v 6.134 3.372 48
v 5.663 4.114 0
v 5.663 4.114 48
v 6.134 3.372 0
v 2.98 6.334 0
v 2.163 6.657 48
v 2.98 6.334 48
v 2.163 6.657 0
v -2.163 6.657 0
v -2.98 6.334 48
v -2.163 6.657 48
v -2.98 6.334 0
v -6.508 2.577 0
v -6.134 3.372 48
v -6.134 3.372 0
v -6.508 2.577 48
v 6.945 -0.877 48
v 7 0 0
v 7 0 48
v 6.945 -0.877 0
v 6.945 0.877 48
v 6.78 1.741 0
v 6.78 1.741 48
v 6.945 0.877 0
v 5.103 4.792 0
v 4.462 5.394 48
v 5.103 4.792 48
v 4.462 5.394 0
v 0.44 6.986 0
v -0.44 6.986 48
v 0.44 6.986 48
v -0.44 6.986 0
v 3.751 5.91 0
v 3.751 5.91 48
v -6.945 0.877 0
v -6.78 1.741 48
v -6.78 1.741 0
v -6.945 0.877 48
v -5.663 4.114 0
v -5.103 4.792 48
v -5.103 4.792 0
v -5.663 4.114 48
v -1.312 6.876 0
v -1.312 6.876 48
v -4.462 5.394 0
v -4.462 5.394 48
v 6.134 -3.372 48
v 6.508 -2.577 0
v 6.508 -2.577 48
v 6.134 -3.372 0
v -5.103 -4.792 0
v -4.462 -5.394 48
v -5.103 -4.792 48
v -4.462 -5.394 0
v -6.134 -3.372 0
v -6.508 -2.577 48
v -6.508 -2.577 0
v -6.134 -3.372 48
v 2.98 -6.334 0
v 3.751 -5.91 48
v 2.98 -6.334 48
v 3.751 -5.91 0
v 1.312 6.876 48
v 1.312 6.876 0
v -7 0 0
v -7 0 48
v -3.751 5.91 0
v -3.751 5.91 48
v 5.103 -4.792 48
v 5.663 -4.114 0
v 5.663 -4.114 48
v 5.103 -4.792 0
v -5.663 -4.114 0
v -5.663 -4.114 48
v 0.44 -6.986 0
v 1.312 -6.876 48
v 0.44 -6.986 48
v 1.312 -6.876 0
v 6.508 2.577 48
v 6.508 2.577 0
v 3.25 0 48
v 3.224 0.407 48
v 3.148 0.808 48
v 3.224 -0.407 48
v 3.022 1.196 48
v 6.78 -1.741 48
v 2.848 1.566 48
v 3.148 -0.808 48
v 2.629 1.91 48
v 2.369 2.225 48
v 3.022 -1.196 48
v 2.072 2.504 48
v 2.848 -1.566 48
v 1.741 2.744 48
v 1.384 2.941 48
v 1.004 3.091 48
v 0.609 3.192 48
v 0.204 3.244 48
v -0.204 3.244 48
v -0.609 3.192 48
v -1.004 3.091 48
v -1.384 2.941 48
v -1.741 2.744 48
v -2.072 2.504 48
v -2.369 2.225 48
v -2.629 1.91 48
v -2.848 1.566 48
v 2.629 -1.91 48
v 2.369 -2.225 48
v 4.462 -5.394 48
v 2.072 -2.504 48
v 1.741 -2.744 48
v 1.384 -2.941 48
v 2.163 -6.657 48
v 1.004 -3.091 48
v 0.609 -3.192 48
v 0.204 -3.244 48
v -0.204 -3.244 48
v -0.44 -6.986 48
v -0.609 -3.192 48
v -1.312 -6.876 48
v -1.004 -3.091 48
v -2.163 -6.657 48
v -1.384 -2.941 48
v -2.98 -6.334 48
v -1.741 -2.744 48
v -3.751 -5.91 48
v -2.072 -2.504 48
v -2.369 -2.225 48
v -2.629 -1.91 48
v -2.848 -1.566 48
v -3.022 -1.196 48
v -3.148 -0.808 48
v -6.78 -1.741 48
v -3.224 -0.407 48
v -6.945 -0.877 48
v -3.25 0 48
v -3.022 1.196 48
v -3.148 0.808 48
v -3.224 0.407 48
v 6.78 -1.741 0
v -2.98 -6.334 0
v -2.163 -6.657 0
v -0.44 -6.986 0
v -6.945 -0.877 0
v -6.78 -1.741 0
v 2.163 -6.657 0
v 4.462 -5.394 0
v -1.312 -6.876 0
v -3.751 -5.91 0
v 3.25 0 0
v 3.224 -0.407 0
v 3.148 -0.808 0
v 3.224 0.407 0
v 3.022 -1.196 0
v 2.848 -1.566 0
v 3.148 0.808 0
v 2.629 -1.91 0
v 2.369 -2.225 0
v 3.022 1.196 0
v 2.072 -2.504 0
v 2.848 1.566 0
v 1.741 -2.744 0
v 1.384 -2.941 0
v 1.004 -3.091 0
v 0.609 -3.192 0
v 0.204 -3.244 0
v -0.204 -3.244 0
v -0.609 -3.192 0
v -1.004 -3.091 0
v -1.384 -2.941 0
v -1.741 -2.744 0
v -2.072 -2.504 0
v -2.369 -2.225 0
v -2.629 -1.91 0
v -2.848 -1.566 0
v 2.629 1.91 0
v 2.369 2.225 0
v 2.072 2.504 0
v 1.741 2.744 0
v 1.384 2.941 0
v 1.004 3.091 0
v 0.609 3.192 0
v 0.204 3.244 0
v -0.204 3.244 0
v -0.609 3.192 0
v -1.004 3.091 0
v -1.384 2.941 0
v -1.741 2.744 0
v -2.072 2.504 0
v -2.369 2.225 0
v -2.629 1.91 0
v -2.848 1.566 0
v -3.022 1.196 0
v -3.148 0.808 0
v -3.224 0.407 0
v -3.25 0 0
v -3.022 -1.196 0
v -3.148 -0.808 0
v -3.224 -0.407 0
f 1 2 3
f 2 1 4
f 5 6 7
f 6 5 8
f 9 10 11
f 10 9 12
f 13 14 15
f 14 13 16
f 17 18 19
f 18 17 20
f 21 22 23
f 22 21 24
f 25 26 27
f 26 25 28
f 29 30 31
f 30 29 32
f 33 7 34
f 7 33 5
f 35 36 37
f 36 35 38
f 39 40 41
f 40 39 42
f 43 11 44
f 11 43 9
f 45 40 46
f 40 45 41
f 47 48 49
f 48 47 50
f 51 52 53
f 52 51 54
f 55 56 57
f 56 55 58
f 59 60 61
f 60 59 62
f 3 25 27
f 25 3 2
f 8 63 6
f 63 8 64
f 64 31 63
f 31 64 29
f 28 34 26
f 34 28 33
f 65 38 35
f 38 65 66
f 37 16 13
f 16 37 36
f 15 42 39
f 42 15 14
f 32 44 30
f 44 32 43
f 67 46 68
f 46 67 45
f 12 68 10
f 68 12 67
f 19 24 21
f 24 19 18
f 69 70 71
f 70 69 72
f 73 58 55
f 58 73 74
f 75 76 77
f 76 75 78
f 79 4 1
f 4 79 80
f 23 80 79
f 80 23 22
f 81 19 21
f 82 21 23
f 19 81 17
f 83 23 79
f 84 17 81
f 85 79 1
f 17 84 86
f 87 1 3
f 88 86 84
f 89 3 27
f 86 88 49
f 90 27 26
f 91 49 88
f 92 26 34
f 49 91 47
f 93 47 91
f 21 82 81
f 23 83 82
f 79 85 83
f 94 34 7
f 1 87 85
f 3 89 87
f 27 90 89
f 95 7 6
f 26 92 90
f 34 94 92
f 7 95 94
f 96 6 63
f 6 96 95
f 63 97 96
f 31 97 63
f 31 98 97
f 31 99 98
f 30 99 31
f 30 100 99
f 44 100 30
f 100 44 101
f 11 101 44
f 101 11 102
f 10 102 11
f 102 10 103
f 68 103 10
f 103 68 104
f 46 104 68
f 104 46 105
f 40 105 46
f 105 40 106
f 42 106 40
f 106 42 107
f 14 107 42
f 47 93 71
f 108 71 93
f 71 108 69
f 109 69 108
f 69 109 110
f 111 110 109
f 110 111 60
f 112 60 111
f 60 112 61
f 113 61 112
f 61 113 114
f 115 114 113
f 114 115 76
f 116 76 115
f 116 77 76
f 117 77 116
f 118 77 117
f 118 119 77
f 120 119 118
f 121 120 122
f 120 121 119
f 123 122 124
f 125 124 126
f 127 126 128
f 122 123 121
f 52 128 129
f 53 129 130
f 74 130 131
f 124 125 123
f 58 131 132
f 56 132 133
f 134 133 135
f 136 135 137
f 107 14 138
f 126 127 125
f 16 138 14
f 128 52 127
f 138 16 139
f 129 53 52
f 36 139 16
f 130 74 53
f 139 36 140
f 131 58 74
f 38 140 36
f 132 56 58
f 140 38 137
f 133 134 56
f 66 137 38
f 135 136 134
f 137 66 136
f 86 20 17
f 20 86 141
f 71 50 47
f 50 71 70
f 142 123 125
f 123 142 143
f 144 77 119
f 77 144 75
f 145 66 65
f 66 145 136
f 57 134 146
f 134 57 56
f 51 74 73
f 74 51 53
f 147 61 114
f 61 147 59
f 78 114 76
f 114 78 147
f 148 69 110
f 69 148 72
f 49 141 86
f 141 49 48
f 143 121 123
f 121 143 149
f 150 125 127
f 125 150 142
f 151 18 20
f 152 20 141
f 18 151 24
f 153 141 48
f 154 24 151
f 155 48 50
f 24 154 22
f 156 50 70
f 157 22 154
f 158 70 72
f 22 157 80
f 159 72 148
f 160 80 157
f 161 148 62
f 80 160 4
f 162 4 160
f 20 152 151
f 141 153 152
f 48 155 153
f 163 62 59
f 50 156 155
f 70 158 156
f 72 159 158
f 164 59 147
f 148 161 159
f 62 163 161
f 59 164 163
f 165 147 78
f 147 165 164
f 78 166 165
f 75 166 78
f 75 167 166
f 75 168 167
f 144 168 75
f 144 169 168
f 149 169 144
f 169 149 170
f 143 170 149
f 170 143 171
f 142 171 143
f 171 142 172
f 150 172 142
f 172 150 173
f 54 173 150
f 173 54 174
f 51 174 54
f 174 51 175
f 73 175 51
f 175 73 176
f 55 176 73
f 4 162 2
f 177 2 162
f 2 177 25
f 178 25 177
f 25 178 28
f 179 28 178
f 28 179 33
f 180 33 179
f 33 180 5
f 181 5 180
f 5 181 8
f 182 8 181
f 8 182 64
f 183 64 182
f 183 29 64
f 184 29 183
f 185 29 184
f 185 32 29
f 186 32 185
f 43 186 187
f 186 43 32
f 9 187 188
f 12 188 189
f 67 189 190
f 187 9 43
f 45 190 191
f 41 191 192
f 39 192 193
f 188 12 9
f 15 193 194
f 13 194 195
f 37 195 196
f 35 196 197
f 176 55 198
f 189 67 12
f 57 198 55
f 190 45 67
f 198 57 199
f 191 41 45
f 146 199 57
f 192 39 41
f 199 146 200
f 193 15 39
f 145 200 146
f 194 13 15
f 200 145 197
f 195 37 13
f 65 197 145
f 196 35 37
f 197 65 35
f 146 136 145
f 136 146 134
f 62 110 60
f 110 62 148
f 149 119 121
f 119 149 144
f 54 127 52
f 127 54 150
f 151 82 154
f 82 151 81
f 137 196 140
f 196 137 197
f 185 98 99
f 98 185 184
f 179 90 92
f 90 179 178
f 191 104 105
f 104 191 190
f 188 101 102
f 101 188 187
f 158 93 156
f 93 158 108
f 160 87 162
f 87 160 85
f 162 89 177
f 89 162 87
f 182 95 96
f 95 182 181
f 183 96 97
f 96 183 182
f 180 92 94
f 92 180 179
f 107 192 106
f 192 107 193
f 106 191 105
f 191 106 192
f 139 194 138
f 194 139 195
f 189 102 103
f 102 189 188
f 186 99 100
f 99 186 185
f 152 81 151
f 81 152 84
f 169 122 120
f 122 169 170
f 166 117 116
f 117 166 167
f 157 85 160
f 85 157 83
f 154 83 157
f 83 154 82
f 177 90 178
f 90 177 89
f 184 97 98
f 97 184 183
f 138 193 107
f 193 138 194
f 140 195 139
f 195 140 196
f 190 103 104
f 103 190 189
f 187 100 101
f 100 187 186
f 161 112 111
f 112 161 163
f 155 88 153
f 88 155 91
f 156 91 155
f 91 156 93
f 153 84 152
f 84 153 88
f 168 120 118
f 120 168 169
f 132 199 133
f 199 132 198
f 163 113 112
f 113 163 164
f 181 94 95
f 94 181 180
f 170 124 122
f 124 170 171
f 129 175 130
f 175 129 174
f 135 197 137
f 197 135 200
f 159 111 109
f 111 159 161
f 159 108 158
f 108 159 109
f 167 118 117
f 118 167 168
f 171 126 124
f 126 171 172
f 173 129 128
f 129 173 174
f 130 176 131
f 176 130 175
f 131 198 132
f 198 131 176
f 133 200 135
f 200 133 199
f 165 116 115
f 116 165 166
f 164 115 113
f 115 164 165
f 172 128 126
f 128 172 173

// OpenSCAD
$fn = 50;


difference() {
	union() {
		cylinder(h = 48, r = 7.0000000000);
	}
	union() {
		translate(v = [0.0000000000, 0.0000000000, -100.0000000000]) {
			cylinder(h = 200, r = 3.2500000000);
		}
		cylinder(h = 48, r = 1.8000000000);
		cylinder(h = 48, r = 1.8000000000);
		cylinder(h = 48, r = 1.8000000000);
	}
}
